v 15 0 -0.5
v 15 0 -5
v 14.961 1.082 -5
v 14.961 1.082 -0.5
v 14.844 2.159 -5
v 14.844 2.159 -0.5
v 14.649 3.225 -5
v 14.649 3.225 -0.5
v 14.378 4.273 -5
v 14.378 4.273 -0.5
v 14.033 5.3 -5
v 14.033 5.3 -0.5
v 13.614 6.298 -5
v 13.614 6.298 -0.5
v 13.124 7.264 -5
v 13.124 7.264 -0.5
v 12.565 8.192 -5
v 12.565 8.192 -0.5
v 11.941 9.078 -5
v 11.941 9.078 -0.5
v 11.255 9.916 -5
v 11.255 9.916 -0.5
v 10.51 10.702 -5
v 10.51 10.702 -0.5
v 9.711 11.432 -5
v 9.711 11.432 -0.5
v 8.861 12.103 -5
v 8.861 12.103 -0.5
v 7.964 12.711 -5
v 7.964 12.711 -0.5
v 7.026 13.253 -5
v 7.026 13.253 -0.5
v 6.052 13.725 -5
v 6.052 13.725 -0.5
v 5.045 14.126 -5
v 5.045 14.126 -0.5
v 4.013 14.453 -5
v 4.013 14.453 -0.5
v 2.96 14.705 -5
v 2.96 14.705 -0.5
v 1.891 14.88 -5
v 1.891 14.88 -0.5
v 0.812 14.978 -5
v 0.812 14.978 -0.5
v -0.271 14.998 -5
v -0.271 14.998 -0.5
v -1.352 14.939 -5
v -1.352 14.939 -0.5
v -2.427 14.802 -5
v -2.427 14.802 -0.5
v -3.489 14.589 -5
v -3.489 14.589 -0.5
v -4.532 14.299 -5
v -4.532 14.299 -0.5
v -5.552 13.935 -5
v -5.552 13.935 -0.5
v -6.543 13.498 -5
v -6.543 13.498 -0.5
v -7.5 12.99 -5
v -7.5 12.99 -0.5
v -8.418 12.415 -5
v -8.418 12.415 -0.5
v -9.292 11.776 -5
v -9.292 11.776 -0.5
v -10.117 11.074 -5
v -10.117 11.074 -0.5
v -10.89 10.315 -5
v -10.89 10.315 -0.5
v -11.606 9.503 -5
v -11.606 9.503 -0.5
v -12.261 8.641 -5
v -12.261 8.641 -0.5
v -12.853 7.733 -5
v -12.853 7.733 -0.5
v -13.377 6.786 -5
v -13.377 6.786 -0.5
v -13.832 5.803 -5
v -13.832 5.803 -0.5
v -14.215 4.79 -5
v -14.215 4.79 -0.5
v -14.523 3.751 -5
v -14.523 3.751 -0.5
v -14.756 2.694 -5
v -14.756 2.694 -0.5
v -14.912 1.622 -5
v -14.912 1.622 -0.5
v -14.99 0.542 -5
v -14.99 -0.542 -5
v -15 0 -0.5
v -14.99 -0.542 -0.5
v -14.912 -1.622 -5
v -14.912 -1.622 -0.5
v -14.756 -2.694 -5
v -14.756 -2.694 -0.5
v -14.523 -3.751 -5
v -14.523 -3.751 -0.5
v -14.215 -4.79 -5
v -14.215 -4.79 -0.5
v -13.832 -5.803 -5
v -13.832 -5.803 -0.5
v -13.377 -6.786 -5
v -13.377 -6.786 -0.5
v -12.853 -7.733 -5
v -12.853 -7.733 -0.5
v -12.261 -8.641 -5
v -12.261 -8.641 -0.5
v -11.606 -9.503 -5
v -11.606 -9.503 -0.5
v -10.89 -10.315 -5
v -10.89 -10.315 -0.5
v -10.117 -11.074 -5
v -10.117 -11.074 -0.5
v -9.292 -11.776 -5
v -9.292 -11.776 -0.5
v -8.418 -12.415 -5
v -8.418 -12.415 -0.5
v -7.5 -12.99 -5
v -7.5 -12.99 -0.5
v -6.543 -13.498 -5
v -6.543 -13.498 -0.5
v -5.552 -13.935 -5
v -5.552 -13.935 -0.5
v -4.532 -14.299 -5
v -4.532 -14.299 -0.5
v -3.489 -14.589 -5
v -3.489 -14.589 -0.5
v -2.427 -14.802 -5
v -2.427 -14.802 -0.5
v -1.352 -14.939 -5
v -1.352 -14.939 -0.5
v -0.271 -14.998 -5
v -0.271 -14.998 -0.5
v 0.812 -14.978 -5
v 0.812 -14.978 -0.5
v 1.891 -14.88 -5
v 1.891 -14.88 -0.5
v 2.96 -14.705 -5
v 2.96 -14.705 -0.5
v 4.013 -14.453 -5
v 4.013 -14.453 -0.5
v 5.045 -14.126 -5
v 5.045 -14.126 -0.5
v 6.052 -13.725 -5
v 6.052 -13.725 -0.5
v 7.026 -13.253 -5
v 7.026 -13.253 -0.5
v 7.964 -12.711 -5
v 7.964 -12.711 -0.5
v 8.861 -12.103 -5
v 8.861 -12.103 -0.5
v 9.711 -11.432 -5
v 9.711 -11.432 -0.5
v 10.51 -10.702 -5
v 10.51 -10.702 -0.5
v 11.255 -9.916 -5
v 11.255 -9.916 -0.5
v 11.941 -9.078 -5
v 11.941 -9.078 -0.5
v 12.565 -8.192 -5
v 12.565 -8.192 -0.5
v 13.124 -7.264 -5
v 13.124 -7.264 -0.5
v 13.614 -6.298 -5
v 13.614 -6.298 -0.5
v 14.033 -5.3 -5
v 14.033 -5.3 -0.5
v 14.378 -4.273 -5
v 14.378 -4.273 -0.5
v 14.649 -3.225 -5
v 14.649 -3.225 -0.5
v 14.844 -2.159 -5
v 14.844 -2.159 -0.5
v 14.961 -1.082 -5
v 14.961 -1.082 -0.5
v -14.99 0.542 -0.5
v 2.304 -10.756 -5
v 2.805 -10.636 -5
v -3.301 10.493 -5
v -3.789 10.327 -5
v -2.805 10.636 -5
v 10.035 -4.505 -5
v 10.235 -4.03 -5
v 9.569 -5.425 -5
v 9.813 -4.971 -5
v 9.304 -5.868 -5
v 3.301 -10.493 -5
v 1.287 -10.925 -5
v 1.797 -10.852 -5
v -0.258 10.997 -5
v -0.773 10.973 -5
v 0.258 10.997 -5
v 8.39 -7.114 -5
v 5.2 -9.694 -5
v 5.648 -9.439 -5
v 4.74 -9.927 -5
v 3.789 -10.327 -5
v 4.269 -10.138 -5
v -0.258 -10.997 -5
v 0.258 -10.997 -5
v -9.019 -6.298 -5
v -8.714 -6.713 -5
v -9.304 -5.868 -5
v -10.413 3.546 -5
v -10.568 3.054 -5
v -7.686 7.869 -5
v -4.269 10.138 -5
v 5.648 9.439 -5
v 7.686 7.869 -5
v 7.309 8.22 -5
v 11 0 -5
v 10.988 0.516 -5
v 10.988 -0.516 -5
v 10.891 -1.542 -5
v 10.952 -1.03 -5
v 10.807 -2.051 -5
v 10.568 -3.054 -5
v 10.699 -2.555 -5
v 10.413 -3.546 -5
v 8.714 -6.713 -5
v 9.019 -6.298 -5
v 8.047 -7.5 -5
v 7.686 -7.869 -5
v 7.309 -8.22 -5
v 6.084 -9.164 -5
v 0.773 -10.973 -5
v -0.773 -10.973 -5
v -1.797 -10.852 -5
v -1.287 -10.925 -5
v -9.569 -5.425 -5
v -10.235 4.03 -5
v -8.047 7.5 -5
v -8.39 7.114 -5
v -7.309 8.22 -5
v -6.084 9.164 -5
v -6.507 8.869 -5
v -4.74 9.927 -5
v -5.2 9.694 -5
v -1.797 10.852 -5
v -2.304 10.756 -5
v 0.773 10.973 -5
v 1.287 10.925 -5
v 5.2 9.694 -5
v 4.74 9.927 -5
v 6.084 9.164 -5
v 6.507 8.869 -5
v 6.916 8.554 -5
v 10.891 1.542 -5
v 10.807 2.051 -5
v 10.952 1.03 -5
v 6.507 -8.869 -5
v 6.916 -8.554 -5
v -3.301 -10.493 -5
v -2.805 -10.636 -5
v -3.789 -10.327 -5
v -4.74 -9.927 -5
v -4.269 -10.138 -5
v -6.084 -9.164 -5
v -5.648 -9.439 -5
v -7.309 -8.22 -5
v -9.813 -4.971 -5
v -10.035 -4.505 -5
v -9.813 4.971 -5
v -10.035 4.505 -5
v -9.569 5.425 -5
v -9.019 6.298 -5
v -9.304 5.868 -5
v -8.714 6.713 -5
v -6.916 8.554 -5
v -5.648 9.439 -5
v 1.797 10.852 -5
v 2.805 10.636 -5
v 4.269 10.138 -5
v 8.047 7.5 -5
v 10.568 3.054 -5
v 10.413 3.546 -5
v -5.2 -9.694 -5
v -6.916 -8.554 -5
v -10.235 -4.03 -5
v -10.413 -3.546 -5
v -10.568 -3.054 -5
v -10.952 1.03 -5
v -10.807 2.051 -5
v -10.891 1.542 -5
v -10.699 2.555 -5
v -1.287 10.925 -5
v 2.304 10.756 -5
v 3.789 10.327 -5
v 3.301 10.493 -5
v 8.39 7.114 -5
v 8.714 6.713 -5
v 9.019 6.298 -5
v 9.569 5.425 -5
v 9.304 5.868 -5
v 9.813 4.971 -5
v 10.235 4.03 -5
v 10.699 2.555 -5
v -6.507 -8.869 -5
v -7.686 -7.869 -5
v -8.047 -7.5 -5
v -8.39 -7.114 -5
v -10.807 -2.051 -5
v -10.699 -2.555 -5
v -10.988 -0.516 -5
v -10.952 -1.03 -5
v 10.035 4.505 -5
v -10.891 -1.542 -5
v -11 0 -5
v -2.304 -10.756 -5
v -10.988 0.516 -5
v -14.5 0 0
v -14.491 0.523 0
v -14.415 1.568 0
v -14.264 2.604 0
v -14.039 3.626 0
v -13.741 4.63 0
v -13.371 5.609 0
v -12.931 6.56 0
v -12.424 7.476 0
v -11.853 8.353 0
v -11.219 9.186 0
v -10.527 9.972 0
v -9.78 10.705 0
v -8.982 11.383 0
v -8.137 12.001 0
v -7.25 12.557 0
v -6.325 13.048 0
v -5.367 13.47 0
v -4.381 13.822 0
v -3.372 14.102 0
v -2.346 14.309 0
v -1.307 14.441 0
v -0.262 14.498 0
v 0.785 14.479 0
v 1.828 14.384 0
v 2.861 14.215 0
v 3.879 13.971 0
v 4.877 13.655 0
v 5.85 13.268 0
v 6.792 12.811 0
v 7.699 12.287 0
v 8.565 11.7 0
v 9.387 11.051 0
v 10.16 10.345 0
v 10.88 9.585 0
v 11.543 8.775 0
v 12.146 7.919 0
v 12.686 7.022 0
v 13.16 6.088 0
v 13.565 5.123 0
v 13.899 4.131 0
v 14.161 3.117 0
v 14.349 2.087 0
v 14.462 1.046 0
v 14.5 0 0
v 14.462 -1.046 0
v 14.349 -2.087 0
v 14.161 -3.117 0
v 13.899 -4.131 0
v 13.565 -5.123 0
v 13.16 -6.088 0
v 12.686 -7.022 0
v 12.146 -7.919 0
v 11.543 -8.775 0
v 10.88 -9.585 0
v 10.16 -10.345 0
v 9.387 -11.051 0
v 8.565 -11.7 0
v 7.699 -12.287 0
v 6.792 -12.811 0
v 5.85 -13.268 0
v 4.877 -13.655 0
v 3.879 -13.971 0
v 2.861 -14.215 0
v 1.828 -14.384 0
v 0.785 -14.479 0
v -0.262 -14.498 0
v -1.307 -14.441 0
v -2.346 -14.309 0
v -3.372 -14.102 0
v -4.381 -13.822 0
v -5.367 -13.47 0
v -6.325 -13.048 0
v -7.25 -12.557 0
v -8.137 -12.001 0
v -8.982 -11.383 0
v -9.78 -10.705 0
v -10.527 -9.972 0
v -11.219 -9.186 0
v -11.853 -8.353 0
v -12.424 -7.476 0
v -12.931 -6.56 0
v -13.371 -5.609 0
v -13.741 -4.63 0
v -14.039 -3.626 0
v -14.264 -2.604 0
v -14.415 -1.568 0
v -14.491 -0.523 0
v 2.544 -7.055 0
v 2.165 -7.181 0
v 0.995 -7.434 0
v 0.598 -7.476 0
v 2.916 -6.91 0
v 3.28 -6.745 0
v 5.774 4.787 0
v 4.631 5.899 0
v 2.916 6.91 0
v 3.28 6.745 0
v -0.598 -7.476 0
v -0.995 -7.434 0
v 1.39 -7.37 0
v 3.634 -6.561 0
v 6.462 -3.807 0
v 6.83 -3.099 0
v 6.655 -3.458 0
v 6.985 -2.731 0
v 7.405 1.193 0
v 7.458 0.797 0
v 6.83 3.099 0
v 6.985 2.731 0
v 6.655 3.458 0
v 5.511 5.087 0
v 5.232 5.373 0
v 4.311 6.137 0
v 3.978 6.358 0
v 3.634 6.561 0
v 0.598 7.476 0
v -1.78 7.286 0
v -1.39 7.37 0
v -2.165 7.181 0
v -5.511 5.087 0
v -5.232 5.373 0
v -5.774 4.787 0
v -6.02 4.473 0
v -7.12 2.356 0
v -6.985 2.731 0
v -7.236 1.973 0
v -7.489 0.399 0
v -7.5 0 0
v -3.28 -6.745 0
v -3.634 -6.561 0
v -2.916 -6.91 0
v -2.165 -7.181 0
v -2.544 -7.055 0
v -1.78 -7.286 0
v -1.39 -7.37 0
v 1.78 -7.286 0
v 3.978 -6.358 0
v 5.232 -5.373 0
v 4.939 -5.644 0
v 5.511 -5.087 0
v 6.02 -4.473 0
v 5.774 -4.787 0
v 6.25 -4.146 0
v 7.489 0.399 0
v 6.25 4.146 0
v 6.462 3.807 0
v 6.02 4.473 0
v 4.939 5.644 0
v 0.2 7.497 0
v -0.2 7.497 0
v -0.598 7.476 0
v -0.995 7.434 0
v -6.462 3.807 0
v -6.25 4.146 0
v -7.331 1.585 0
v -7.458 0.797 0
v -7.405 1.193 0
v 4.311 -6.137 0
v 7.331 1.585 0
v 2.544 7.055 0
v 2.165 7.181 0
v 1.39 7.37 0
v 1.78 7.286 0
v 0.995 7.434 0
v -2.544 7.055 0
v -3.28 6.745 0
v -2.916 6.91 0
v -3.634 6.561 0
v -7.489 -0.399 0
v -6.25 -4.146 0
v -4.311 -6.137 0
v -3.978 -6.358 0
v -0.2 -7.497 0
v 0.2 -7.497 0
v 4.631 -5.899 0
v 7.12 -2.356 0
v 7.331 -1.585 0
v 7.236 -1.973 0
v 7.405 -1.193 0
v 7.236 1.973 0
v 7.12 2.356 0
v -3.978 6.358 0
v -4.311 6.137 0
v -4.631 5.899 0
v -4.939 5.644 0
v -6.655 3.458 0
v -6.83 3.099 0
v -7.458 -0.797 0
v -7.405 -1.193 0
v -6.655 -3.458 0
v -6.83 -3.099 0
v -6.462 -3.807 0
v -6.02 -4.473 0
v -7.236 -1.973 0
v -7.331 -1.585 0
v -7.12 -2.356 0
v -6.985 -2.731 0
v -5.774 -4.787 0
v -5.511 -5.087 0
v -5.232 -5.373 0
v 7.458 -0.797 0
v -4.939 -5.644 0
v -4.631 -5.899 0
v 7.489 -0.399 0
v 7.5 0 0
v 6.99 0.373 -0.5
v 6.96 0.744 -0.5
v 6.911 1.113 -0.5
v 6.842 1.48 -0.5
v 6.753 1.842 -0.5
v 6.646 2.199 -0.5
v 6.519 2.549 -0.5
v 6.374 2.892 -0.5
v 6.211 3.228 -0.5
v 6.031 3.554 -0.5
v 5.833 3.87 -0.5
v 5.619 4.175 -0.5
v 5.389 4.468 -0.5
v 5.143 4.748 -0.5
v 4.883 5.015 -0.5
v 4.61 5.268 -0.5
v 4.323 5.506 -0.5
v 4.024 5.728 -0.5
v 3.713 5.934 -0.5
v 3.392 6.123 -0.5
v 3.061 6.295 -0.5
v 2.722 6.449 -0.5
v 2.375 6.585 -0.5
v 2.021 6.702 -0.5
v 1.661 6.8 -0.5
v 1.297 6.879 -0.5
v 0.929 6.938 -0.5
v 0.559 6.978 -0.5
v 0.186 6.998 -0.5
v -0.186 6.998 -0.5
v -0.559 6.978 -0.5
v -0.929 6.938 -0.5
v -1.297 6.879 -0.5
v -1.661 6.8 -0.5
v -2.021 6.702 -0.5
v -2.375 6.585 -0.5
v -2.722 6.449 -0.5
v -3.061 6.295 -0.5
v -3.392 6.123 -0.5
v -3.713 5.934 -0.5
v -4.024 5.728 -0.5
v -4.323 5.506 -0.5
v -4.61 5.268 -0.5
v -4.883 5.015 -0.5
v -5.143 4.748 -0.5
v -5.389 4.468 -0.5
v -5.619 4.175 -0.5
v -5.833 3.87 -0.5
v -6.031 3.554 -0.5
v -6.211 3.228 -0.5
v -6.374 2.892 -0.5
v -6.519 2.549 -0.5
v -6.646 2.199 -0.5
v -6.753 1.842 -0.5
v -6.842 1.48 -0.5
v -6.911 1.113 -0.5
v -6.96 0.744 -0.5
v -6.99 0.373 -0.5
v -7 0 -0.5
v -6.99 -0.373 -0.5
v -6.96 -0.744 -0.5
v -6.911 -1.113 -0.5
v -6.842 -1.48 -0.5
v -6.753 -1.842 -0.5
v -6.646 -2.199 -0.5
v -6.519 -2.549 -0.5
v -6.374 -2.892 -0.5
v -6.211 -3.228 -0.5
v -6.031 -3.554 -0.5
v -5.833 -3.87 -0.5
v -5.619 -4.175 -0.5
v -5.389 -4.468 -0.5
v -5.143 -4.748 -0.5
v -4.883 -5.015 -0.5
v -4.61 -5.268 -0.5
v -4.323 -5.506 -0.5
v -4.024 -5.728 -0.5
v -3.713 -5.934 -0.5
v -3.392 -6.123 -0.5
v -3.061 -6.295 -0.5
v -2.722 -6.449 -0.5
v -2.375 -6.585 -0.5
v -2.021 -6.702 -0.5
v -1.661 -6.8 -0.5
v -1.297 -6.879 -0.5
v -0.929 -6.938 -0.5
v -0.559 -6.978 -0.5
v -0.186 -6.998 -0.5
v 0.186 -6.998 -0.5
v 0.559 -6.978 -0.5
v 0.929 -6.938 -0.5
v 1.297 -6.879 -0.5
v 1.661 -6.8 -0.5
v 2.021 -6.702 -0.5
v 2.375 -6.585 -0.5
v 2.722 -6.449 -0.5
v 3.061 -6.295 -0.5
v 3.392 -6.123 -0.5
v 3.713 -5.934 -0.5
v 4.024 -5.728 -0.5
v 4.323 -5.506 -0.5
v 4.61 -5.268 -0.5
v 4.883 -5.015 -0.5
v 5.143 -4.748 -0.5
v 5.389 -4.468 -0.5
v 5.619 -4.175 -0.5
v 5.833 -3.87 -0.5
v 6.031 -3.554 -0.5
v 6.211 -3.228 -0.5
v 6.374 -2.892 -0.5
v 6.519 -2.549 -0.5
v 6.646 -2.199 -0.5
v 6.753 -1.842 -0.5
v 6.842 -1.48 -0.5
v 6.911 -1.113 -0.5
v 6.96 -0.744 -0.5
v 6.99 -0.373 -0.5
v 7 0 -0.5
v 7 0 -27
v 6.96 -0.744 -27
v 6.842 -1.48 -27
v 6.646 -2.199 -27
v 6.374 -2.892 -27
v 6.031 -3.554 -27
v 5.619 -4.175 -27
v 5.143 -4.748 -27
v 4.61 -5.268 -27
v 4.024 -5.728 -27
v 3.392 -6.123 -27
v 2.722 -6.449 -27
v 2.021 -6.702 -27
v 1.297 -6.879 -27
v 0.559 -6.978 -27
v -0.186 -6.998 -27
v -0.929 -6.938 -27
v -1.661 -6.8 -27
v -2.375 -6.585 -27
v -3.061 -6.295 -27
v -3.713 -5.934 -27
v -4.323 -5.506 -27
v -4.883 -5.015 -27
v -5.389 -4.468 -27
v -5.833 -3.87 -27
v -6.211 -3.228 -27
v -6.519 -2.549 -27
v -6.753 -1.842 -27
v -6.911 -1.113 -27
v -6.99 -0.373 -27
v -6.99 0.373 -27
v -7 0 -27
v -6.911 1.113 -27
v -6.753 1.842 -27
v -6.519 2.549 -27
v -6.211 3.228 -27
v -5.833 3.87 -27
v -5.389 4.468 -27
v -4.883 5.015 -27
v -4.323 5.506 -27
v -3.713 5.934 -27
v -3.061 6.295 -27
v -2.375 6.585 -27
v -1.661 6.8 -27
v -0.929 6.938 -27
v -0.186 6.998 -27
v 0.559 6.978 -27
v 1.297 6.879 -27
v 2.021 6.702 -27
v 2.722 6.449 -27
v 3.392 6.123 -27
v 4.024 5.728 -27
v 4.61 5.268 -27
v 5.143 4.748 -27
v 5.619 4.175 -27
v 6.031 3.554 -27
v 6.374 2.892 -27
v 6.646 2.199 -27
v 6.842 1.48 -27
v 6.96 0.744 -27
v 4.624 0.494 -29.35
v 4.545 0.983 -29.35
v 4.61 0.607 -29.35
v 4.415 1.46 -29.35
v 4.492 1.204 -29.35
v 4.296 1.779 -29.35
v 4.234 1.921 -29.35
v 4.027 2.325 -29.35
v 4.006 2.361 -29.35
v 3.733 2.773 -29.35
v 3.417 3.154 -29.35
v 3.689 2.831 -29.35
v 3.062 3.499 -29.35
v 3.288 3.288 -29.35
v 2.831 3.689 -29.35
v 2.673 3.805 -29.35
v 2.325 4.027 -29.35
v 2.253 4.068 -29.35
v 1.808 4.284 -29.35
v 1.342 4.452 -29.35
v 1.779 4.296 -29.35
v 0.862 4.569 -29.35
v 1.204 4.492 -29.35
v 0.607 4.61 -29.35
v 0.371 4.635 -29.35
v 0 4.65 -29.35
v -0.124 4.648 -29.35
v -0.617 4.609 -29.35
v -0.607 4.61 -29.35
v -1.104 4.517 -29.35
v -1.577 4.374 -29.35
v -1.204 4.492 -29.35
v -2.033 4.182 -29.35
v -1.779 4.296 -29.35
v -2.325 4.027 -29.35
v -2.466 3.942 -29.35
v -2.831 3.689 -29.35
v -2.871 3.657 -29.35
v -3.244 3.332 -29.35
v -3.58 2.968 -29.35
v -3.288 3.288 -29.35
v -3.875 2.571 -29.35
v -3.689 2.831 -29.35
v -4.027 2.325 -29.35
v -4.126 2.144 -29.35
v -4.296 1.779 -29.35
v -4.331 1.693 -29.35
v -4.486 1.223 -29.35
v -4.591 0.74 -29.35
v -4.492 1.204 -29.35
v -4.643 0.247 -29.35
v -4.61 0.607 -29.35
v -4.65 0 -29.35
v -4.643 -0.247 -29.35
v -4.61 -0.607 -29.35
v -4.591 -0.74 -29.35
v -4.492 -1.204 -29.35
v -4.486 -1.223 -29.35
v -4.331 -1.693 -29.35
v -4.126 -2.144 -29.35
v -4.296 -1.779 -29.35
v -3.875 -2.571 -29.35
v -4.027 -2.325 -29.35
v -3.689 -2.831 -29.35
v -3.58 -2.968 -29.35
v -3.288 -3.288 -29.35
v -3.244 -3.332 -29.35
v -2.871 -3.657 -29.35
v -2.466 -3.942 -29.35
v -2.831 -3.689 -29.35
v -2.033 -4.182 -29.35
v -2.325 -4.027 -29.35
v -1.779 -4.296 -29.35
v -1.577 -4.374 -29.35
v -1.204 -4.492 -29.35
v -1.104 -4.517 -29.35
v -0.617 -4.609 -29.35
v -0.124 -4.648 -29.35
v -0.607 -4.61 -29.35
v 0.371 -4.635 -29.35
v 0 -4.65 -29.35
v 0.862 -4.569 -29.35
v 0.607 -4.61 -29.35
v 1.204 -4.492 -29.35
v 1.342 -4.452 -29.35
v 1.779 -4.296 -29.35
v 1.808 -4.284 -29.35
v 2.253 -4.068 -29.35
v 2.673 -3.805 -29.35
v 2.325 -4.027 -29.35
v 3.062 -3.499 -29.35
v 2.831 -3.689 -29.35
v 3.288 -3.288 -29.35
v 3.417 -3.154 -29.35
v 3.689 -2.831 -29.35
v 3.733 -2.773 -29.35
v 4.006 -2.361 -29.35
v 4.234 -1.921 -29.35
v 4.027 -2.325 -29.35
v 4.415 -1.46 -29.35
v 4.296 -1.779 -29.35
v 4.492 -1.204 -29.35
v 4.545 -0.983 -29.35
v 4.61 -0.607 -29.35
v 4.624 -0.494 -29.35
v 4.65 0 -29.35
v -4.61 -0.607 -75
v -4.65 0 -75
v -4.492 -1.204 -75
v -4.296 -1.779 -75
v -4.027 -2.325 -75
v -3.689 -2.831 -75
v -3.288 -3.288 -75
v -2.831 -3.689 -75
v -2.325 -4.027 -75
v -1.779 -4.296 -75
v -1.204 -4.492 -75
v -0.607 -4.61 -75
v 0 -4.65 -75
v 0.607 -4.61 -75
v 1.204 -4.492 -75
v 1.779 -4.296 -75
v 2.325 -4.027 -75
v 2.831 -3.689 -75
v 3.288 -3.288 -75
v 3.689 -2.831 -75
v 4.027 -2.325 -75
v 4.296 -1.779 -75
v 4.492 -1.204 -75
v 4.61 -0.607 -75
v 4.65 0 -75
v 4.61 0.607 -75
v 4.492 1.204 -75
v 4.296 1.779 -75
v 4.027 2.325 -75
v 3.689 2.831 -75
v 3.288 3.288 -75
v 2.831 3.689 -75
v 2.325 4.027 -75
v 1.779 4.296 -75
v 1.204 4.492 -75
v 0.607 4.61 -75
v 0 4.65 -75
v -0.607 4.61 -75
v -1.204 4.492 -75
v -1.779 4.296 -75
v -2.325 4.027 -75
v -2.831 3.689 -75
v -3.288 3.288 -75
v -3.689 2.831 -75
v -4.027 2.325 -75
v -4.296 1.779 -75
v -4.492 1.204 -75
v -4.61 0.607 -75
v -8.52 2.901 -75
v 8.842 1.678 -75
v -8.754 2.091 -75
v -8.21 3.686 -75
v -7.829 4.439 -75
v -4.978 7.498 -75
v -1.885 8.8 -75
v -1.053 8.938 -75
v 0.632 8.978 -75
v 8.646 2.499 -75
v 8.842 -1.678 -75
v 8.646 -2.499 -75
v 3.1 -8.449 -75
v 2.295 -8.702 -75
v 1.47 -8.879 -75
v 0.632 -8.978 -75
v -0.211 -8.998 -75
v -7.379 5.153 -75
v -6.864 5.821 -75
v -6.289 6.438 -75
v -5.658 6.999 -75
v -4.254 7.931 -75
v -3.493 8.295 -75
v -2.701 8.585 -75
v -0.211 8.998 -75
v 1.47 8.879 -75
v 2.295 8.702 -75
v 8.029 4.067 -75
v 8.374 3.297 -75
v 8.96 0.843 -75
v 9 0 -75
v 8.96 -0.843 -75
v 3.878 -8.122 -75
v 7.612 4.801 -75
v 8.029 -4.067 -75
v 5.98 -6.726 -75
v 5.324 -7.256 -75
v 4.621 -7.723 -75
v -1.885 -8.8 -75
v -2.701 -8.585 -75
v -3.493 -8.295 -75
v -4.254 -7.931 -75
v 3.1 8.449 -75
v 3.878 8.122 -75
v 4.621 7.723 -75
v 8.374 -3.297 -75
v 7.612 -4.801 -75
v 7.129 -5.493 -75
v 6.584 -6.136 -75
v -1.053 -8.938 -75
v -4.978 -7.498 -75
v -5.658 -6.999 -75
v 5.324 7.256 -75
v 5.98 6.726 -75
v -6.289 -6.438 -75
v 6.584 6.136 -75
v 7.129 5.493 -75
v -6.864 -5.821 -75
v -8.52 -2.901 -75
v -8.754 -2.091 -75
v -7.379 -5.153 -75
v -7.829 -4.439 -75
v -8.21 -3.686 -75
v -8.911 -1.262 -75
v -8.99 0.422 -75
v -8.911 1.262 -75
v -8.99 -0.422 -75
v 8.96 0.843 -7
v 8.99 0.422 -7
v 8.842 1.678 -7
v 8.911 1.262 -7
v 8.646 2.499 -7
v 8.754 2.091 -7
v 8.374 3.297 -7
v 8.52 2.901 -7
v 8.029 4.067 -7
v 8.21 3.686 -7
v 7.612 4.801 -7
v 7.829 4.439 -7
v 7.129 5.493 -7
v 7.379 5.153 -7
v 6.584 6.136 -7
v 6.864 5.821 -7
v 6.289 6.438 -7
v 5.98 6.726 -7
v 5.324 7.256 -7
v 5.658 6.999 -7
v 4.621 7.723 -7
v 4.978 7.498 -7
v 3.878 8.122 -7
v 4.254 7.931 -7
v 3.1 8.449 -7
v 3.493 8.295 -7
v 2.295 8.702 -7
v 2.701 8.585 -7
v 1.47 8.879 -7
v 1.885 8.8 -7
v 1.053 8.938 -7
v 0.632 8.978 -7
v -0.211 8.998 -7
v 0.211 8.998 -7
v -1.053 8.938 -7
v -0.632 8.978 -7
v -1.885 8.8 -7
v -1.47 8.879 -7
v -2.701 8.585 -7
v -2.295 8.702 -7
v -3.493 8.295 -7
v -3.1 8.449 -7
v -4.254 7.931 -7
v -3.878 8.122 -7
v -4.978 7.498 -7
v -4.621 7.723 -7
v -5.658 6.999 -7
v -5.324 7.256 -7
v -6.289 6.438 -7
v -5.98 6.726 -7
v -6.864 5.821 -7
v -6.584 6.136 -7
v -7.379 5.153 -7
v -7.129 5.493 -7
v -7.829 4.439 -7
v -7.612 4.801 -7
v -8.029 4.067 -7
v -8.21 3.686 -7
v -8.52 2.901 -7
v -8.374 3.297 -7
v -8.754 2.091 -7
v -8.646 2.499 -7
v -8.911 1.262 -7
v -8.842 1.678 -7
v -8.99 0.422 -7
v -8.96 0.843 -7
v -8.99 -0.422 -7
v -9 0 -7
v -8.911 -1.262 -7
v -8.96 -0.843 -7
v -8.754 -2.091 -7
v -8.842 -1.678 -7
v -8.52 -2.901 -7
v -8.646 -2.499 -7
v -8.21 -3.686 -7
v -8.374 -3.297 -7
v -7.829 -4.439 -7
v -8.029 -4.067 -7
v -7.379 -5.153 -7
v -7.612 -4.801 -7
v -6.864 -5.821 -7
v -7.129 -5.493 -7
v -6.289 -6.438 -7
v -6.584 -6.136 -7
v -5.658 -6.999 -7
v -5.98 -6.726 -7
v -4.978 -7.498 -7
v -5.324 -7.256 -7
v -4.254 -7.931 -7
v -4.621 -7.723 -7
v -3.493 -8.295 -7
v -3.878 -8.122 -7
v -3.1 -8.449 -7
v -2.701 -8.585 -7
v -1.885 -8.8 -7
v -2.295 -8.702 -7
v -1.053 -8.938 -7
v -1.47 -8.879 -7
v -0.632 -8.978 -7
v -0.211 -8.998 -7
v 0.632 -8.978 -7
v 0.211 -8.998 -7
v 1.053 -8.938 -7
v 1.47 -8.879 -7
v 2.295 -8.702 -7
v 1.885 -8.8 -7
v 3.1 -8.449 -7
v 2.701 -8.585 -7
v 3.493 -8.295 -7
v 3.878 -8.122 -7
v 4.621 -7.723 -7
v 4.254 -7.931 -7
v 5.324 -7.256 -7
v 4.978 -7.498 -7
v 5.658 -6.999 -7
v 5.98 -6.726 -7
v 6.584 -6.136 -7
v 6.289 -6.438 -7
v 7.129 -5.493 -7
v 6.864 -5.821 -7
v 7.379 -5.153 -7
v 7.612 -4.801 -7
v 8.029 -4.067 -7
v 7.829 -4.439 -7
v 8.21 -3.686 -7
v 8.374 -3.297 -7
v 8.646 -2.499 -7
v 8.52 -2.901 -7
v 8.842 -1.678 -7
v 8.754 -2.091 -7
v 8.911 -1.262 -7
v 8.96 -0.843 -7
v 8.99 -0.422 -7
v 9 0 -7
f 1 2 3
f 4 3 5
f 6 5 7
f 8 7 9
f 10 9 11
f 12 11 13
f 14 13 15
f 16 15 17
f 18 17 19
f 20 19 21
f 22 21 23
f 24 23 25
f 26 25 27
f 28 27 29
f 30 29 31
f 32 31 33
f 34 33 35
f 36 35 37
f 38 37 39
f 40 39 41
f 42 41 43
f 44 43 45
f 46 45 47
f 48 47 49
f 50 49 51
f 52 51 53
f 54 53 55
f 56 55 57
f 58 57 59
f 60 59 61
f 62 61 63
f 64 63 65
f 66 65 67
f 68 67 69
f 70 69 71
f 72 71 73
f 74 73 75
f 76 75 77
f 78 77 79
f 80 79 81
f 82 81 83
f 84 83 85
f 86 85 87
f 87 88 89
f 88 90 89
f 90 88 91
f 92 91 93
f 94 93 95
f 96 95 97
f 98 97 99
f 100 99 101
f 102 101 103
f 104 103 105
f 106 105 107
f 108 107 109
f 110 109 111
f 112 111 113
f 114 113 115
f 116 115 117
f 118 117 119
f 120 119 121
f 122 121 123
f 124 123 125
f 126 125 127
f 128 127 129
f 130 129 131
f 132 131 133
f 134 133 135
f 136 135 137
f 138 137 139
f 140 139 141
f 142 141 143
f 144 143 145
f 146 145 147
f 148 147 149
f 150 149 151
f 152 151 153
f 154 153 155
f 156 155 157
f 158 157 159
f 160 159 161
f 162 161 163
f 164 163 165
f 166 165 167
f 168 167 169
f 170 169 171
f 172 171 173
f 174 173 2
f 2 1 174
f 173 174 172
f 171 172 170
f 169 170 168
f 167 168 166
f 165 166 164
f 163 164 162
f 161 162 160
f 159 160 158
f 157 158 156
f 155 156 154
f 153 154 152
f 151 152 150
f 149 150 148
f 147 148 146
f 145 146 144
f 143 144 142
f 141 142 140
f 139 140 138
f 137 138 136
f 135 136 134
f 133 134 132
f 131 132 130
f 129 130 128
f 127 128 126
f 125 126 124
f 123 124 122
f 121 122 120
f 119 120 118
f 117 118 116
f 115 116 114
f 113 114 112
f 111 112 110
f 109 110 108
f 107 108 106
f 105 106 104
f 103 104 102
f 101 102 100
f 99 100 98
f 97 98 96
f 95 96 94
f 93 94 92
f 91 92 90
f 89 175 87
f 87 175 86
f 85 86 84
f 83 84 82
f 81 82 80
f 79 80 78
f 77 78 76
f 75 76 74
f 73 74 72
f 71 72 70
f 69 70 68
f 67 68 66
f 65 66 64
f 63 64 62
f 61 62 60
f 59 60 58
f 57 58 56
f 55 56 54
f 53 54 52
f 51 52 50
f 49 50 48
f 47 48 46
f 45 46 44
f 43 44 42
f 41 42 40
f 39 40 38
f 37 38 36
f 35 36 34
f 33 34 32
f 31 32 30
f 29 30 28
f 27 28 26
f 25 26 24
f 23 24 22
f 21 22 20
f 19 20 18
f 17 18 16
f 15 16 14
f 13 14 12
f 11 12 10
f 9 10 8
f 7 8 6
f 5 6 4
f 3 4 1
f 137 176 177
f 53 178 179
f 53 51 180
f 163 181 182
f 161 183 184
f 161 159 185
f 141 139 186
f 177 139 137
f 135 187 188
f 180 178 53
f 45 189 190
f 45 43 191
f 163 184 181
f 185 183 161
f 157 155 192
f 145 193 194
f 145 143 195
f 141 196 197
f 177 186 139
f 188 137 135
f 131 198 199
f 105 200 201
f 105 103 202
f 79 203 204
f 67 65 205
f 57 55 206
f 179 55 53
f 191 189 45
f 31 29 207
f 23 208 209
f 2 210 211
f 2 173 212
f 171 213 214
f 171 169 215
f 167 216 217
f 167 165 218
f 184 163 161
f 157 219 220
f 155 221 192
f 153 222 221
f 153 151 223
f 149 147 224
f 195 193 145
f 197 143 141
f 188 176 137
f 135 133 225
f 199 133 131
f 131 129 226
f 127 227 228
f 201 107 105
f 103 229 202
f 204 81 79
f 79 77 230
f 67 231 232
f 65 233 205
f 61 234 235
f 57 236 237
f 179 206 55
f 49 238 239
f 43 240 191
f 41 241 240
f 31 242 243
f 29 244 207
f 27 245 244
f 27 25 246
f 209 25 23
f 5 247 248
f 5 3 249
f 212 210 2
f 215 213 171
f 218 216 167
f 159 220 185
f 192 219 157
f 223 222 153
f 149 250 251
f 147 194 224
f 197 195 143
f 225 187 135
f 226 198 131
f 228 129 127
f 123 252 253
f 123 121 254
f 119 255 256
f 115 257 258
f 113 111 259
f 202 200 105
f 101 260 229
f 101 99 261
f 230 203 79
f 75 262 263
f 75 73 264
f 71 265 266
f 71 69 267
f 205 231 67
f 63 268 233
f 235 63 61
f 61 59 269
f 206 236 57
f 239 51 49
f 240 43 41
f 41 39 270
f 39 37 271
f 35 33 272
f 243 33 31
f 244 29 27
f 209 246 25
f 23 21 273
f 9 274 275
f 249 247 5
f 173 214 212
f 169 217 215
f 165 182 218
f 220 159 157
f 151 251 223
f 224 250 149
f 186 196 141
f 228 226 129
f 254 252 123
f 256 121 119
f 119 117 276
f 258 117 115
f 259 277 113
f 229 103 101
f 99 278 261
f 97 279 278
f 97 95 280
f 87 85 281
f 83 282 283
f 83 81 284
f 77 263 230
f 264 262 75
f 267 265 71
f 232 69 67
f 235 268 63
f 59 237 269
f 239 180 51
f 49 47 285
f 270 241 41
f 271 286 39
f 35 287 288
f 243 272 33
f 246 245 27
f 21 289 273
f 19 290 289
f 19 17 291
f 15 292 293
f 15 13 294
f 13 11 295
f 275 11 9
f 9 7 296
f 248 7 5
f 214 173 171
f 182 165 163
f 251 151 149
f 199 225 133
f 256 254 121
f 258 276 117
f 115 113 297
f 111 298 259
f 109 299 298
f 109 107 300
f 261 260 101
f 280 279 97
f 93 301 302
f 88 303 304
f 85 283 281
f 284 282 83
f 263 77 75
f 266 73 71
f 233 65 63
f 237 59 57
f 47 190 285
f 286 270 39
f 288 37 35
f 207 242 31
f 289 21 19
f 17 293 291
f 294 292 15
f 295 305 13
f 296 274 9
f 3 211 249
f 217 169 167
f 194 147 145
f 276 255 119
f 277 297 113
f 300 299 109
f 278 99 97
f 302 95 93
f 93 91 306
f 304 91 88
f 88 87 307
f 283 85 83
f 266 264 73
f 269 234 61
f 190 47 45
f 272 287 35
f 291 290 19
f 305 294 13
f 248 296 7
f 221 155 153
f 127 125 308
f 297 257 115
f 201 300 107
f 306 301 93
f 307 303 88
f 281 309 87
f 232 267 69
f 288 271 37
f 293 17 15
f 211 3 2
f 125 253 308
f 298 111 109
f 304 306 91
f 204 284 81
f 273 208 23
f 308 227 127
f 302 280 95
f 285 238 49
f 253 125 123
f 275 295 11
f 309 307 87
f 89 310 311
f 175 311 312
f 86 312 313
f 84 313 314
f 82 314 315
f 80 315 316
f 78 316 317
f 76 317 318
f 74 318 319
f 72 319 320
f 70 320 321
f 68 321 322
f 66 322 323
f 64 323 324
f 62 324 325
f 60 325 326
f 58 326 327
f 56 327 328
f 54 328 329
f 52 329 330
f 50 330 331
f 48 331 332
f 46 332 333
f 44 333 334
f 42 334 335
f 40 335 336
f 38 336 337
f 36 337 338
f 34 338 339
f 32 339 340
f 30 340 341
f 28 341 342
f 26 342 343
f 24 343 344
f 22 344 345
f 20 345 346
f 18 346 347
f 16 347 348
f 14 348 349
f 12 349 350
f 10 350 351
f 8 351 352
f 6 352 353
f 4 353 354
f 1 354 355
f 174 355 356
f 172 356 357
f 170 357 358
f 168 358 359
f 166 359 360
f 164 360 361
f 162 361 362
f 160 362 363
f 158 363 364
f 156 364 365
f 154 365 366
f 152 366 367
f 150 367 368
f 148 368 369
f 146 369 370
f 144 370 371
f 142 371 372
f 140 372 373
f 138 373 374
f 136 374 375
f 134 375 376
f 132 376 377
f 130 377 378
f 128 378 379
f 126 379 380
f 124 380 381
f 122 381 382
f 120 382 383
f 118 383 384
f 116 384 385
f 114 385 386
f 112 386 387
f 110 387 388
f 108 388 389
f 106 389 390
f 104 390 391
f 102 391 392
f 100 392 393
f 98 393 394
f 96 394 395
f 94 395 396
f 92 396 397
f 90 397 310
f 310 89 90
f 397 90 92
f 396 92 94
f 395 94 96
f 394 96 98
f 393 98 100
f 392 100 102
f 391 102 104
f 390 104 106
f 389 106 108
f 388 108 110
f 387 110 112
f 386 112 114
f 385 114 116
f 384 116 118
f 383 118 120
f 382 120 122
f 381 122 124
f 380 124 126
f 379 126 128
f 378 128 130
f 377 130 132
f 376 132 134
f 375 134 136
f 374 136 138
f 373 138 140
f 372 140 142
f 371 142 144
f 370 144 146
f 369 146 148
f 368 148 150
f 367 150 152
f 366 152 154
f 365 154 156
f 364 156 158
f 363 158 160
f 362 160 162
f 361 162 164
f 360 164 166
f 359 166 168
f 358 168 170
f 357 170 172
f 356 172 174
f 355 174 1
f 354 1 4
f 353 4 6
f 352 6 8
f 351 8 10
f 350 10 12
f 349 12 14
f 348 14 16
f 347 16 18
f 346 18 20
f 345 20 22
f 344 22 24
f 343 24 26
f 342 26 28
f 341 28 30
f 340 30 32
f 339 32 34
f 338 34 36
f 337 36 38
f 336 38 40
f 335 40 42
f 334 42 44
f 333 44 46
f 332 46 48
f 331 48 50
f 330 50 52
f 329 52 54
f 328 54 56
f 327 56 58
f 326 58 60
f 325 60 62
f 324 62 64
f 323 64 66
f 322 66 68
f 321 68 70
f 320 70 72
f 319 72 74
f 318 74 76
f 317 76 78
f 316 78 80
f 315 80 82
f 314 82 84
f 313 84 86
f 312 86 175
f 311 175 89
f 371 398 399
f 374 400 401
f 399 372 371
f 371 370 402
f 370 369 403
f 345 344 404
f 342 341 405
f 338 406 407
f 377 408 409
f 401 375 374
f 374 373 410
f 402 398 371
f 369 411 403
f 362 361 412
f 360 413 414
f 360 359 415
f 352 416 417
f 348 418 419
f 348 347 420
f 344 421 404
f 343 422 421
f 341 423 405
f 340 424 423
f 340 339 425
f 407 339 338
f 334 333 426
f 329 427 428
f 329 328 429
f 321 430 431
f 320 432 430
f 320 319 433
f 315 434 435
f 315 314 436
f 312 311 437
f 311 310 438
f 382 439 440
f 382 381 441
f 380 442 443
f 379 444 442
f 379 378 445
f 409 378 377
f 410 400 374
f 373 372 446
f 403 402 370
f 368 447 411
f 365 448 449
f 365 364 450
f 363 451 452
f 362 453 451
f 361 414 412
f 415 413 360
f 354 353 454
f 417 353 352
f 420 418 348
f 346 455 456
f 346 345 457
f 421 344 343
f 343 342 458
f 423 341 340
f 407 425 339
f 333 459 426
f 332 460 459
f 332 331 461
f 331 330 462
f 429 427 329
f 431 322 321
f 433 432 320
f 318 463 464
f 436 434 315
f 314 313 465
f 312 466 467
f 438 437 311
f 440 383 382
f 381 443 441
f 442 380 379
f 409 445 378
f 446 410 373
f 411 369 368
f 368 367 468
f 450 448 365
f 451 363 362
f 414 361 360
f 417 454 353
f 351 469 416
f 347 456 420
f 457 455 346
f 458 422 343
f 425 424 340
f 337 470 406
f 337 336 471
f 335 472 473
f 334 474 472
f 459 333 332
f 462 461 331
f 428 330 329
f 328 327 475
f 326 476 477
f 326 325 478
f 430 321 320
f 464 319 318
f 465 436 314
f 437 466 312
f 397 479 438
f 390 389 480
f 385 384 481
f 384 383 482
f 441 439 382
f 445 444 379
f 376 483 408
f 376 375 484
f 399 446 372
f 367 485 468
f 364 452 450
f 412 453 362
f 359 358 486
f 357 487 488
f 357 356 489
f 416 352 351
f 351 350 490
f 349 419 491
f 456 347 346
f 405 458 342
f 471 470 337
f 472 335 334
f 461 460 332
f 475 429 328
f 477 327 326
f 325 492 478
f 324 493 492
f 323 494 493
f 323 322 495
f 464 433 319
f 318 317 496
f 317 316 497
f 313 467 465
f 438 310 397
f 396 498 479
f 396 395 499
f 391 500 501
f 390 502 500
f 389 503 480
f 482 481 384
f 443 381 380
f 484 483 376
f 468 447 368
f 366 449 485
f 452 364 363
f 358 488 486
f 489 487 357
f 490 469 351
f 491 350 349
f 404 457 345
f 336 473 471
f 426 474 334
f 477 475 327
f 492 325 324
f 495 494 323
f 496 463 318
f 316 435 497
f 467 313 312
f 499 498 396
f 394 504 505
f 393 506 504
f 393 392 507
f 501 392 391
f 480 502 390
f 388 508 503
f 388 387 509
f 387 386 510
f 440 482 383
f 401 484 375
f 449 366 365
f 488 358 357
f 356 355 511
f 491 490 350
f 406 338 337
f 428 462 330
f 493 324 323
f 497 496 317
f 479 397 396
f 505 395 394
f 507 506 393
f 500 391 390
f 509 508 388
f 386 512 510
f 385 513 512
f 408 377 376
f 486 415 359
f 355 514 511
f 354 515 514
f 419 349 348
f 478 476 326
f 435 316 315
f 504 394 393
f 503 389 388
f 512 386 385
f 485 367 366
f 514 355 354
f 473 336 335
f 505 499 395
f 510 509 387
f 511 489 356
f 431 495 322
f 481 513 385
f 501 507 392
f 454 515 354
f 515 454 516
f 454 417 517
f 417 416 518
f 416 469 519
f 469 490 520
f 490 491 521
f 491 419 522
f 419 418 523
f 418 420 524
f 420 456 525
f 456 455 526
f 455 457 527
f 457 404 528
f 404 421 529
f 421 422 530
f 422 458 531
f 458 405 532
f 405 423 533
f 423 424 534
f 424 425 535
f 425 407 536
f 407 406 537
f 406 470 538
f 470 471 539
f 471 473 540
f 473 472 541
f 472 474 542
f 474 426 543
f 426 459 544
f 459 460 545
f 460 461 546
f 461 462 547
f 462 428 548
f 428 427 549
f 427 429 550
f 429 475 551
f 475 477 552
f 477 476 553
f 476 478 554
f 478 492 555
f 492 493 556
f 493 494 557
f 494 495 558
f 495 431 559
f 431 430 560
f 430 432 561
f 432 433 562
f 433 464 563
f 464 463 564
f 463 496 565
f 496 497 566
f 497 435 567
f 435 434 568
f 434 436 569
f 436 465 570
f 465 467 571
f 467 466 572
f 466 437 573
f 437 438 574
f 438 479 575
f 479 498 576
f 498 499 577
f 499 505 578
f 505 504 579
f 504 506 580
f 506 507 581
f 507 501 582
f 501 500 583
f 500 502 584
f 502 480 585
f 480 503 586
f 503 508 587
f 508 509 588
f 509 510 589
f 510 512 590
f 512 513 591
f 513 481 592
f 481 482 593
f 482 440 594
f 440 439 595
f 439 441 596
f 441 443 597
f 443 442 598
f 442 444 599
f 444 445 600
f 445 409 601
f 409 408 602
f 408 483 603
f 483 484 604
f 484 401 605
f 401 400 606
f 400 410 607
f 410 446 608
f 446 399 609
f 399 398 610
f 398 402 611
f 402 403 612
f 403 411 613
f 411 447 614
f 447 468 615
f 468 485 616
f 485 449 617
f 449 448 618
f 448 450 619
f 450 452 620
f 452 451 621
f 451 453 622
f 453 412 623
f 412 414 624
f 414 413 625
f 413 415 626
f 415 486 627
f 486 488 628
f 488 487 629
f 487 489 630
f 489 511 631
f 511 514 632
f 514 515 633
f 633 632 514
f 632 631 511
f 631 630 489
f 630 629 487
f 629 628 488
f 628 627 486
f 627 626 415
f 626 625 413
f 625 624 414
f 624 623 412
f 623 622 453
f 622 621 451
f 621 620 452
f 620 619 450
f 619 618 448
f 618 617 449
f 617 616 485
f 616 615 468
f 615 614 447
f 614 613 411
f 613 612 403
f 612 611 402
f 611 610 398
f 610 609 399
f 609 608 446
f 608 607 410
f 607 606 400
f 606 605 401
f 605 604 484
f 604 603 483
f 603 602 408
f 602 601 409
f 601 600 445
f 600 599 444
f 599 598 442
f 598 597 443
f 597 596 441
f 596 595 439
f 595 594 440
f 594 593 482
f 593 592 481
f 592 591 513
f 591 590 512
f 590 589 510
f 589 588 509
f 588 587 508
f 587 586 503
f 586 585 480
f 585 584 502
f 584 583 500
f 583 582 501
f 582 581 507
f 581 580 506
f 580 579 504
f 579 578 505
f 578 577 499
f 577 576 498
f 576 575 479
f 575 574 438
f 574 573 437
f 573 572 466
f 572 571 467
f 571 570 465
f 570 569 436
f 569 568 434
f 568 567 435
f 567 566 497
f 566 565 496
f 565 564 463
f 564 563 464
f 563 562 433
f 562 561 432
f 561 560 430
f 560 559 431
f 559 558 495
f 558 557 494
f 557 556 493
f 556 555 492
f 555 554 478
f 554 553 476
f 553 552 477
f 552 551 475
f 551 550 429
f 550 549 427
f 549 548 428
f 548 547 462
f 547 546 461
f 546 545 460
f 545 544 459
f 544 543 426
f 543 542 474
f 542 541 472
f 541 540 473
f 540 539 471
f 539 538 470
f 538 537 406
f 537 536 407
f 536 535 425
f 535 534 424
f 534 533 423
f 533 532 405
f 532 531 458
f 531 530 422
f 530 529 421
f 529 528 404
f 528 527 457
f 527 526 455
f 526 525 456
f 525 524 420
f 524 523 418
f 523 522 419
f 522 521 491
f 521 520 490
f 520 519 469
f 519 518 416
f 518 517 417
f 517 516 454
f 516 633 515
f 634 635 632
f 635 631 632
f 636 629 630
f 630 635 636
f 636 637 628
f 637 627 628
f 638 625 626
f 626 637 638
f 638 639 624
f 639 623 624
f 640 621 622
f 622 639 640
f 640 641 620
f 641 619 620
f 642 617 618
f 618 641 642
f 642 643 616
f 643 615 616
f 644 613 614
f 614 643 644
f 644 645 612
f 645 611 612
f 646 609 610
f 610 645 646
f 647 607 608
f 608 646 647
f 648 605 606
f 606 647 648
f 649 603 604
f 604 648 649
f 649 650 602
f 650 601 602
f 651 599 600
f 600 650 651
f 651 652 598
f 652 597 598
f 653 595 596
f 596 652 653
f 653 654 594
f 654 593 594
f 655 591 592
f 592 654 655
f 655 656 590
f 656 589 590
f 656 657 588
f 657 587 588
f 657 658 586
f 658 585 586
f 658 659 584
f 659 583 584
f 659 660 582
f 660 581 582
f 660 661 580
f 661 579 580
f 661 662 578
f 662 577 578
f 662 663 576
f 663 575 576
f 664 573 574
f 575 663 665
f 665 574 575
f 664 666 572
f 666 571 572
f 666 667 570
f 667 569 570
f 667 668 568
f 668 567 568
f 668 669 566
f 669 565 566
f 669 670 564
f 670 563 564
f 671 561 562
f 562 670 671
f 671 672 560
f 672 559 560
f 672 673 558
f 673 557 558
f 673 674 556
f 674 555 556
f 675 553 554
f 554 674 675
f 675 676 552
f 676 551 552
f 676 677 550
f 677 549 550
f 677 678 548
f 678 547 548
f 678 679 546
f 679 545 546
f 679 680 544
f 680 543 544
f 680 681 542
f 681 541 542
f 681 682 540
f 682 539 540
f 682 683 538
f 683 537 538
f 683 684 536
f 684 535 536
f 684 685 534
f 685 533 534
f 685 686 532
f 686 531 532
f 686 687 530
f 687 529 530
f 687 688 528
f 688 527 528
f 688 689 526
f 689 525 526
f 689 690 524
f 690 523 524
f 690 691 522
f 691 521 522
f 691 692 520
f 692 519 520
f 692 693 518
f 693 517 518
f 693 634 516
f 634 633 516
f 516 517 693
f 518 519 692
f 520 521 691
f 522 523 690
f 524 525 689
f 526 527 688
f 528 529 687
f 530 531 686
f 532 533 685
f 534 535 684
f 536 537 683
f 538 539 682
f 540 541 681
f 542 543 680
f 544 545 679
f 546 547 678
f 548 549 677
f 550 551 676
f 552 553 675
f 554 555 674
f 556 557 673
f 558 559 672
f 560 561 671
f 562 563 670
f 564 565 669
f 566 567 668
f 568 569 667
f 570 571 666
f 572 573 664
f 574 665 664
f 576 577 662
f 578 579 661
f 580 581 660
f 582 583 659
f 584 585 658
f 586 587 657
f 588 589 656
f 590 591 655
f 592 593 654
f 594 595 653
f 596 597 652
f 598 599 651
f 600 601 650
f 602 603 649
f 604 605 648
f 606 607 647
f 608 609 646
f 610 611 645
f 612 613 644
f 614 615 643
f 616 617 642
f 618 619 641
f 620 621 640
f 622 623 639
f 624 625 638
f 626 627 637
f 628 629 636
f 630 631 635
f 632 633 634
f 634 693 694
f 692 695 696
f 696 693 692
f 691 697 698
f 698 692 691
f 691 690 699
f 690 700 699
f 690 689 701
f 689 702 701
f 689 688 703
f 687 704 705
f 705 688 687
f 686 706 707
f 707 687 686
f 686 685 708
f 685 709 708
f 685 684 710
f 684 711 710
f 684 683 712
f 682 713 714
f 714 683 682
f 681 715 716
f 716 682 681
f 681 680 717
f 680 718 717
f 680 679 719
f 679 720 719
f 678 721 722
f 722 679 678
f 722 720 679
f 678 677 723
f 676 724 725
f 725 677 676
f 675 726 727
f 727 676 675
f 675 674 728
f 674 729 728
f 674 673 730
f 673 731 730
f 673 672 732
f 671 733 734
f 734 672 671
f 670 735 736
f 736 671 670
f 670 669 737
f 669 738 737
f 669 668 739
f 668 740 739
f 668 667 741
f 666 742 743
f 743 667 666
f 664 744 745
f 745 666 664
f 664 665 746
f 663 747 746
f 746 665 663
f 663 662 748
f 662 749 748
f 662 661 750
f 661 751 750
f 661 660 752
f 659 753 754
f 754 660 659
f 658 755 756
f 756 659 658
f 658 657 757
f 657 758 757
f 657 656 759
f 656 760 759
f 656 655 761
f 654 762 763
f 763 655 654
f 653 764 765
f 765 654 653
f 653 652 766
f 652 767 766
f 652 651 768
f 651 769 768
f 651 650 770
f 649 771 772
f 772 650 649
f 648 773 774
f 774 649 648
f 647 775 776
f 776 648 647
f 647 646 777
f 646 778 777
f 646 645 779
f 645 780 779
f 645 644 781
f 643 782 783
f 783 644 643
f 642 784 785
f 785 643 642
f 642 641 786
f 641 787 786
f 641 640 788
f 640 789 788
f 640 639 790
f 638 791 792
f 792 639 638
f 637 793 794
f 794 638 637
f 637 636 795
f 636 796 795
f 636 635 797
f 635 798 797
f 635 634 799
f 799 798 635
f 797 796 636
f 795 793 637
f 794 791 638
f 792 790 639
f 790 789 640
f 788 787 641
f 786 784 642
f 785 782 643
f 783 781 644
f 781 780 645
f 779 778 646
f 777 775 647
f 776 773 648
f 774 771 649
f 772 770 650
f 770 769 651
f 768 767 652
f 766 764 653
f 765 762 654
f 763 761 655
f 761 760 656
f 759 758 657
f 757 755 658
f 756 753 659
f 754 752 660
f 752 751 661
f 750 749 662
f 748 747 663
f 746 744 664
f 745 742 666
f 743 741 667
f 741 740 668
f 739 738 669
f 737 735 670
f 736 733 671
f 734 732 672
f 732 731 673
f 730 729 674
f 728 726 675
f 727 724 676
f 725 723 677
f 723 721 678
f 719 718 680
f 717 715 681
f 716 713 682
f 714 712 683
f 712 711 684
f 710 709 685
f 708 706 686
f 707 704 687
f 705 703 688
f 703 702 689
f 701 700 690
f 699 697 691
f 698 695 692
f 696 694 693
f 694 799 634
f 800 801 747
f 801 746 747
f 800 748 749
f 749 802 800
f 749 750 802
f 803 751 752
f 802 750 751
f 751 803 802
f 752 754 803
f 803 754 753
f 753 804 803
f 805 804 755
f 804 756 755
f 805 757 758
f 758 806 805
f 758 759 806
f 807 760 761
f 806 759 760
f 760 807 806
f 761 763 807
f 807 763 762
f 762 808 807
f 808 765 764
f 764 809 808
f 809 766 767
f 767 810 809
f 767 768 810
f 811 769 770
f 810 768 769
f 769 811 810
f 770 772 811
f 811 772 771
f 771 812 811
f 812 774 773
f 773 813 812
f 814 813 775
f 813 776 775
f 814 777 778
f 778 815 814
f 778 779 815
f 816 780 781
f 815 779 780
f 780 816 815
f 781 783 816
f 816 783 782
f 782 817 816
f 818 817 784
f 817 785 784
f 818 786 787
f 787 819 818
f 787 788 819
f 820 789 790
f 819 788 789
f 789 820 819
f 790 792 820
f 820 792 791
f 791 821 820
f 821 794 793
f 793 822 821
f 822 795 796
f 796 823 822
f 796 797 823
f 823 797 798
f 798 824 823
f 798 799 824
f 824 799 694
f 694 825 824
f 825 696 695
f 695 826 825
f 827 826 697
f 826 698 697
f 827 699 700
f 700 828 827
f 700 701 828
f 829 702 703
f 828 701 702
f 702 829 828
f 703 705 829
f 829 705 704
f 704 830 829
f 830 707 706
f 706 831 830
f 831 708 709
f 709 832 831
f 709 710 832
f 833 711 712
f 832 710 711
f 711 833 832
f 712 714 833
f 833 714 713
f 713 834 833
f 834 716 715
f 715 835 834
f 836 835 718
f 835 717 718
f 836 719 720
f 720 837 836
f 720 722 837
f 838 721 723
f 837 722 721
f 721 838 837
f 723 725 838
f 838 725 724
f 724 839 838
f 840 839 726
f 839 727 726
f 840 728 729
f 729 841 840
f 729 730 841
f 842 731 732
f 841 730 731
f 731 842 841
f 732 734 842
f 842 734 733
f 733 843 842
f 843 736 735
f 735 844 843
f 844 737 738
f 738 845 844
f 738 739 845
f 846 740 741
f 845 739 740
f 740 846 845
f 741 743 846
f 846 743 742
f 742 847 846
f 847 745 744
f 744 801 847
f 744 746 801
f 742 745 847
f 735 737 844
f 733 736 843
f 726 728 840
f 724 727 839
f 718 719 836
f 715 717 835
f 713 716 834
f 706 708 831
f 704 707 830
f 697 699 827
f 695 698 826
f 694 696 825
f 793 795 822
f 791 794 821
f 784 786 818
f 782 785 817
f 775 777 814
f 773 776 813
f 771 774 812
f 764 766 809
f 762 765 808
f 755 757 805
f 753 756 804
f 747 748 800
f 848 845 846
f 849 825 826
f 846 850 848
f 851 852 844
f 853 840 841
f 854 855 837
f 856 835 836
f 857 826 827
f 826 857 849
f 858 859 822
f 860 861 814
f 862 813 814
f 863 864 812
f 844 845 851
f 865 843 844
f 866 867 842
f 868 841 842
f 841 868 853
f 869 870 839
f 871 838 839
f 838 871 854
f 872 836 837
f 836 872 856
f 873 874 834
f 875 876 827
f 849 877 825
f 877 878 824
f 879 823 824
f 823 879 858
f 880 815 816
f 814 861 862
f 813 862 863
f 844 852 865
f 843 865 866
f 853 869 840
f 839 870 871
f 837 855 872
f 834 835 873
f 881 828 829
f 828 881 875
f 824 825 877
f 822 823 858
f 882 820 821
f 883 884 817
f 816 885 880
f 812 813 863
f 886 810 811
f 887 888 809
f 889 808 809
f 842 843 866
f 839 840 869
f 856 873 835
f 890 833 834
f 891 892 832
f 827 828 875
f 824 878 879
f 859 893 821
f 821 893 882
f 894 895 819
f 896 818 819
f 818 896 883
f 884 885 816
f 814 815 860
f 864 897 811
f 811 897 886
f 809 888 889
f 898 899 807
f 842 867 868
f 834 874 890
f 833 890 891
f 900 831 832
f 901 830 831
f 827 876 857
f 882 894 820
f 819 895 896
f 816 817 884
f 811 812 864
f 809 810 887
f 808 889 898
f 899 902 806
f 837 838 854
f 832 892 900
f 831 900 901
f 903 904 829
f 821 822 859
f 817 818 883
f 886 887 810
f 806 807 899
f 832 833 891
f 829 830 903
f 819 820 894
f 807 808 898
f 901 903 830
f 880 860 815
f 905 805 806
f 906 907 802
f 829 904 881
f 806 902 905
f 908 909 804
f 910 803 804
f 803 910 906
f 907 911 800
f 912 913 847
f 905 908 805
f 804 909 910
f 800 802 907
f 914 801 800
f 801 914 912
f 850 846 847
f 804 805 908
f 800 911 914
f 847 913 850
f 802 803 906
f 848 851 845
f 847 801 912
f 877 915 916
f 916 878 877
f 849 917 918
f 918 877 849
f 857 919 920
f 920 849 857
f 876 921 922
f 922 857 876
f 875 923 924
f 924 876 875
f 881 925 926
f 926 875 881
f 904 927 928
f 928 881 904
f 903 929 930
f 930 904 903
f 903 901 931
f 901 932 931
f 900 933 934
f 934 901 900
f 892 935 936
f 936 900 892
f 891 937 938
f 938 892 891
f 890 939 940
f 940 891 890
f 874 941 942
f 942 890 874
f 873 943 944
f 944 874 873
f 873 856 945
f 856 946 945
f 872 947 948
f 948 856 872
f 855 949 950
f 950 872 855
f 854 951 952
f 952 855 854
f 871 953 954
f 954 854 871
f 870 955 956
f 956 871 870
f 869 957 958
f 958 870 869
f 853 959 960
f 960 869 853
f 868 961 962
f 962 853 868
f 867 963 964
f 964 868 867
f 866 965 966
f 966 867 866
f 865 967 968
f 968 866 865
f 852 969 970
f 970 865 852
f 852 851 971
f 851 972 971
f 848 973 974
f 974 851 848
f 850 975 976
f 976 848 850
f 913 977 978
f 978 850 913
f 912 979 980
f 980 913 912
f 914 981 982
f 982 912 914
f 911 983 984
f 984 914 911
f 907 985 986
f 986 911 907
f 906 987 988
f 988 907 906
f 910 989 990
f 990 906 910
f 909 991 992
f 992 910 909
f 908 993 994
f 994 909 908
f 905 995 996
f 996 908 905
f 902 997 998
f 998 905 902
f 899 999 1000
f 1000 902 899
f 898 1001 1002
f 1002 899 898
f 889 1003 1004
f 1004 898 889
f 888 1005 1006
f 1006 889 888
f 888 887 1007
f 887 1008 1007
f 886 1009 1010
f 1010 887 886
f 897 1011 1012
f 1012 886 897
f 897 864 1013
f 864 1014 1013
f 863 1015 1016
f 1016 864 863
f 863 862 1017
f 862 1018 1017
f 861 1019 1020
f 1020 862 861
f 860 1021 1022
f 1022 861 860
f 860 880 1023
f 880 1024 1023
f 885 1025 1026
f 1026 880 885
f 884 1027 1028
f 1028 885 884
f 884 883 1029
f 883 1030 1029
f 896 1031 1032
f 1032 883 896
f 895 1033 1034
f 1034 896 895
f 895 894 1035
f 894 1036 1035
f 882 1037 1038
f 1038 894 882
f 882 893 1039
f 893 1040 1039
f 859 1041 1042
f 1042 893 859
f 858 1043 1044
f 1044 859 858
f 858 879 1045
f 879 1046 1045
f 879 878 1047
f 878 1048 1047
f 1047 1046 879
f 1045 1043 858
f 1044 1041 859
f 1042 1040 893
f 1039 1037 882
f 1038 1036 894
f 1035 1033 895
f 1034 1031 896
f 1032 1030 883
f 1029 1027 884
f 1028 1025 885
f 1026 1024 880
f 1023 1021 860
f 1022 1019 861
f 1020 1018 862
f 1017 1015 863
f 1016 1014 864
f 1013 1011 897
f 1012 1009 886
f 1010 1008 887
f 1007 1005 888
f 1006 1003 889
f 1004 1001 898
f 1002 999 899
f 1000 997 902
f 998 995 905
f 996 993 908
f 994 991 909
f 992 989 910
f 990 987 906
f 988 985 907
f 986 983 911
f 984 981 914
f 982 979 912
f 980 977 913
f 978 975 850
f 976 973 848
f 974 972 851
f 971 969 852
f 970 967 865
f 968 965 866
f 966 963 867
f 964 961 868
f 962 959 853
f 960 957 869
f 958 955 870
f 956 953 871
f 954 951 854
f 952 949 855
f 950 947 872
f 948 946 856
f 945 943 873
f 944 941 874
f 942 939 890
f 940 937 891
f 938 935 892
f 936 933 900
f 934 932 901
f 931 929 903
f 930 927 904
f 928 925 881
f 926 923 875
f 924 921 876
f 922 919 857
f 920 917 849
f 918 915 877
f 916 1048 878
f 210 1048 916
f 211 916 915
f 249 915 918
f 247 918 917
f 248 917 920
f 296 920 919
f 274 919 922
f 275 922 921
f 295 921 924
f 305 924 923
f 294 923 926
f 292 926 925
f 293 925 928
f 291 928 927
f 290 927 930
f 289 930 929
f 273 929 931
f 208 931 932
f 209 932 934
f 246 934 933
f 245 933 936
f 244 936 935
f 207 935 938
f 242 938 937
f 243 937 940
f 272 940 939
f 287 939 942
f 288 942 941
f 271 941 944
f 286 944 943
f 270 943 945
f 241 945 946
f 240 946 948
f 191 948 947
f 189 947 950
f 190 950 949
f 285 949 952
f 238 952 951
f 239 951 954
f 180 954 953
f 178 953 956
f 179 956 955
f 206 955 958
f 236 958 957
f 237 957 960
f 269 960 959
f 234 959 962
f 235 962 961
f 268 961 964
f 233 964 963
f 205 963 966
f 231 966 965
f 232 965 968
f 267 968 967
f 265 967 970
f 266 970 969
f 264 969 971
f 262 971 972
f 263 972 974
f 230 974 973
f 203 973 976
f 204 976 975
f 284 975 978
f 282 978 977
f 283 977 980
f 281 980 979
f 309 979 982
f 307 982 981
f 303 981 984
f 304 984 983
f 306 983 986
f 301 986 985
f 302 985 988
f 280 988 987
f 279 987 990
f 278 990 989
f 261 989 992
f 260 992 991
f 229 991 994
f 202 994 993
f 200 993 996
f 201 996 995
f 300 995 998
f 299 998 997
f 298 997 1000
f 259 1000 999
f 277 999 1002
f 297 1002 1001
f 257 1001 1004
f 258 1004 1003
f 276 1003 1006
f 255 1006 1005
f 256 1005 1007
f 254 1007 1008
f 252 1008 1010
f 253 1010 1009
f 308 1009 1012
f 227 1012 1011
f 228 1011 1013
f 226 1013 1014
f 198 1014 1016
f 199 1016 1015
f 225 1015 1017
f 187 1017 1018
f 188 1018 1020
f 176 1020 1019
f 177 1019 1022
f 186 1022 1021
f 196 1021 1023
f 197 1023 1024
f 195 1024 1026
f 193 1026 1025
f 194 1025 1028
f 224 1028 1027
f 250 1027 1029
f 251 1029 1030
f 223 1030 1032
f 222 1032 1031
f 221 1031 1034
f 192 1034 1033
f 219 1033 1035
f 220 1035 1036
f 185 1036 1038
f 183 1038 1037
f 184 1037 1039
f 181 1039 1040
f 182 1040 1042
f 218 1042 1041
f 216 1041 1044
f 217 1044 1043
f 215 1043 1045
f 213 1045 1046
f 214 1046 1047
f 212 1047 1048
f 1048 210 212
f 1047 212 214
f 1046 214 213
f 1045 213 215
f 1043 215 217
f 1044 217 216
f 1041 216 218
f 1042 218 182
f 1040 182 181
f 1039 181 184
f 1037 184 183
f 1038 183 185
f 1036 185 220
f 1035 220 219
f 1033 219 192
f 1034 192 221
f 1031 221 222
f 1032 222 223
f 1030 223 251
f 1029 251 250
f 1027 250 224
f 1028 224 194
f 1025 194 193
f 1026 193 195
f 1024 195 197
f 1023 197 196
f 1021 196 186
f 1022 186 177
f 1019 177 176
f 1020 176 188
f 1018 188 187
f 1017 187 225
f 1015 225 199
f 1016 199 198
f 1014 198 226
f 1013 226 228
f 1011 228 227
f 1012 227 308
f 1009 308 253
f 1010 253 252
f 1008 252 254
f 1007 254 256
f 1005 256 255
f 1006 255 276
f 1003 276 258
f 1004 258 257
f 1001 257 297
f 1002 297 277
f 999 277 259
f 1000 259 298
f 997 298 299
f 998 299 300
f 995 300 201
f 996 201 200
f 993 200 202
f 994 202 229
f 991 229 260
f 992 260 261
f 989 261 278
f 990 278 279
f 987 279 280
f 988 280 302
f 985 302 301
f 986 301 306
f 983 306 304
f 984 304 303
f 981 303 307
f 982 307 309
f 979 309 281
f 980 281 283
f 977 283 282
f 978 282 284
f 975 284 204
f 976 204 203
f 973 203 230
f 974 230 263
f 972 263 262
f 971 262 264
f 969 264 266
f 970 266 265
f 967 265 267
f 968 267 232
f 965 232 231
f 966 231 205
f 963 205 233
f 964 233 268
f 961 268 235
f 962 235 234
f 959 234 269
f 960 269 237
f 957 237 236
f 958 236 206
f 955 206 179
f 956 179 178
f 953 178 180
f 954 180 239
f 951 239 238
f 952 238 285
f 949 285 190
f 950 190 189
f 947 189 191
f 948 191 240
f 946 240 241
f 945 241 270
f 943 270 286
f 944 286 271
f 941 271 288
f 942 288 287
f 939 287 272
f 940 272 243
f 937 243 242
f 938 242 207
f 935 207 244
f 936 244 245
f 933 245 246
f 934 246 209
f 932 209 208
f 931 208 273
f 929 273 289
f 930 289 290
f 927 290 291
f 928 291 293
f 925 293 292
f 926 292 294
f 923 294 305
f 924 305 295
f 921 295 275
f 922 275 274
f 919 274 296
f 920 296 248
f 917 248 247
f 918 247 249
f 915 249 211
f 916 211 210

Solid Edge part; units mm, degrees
sketch "Sketch1" plane through (0, 0, 0) normal (0, 0, 1) x (1, 0, 0)
  circle A0 centre (0, 0) radius 15
extrude "Extrusionsausprägung_22" add sketch "Sketch1" against normal blind 5
sketch "Sketch2" plane through (0, 0, -5) normal (0, 0, -1) x (1, 0, 0)
  circle A0 centre (0, 0) radius 9
extrude "Extrusionsausprägung_23" add sketch "Sketch2" along normal blind 70
sketch "Sketch3" plane through (0, 0, -75) normal (0, 0, -1) x (1, 0, 0)
  circle A0 centre (0, 0) radius 4.65
extrude "Extrusionsausschnitt_30" cut sketch "Sketch3" against normal blind 89
sketch "Sketch4" plane through (0, 0, 0) normal (0, 0, 1) x (-1, 0, 0)
  circle A0 centre (0, 0) radius 7
extrude "Extrusionsausschnitt_31" cut sketch "Sketch4" against normal blind 30
chamfer "Fase_11" distance 3 angle 45 1 edges at (7, 0, -30)
chamfer "Fase_12" distance 0.5 angle 45 2 edges at (7, 0, 0) (-15, 0, 0)
chamfer "Fase_13" distance 2 angle 45 1 edges at (-9, 0, -5)
